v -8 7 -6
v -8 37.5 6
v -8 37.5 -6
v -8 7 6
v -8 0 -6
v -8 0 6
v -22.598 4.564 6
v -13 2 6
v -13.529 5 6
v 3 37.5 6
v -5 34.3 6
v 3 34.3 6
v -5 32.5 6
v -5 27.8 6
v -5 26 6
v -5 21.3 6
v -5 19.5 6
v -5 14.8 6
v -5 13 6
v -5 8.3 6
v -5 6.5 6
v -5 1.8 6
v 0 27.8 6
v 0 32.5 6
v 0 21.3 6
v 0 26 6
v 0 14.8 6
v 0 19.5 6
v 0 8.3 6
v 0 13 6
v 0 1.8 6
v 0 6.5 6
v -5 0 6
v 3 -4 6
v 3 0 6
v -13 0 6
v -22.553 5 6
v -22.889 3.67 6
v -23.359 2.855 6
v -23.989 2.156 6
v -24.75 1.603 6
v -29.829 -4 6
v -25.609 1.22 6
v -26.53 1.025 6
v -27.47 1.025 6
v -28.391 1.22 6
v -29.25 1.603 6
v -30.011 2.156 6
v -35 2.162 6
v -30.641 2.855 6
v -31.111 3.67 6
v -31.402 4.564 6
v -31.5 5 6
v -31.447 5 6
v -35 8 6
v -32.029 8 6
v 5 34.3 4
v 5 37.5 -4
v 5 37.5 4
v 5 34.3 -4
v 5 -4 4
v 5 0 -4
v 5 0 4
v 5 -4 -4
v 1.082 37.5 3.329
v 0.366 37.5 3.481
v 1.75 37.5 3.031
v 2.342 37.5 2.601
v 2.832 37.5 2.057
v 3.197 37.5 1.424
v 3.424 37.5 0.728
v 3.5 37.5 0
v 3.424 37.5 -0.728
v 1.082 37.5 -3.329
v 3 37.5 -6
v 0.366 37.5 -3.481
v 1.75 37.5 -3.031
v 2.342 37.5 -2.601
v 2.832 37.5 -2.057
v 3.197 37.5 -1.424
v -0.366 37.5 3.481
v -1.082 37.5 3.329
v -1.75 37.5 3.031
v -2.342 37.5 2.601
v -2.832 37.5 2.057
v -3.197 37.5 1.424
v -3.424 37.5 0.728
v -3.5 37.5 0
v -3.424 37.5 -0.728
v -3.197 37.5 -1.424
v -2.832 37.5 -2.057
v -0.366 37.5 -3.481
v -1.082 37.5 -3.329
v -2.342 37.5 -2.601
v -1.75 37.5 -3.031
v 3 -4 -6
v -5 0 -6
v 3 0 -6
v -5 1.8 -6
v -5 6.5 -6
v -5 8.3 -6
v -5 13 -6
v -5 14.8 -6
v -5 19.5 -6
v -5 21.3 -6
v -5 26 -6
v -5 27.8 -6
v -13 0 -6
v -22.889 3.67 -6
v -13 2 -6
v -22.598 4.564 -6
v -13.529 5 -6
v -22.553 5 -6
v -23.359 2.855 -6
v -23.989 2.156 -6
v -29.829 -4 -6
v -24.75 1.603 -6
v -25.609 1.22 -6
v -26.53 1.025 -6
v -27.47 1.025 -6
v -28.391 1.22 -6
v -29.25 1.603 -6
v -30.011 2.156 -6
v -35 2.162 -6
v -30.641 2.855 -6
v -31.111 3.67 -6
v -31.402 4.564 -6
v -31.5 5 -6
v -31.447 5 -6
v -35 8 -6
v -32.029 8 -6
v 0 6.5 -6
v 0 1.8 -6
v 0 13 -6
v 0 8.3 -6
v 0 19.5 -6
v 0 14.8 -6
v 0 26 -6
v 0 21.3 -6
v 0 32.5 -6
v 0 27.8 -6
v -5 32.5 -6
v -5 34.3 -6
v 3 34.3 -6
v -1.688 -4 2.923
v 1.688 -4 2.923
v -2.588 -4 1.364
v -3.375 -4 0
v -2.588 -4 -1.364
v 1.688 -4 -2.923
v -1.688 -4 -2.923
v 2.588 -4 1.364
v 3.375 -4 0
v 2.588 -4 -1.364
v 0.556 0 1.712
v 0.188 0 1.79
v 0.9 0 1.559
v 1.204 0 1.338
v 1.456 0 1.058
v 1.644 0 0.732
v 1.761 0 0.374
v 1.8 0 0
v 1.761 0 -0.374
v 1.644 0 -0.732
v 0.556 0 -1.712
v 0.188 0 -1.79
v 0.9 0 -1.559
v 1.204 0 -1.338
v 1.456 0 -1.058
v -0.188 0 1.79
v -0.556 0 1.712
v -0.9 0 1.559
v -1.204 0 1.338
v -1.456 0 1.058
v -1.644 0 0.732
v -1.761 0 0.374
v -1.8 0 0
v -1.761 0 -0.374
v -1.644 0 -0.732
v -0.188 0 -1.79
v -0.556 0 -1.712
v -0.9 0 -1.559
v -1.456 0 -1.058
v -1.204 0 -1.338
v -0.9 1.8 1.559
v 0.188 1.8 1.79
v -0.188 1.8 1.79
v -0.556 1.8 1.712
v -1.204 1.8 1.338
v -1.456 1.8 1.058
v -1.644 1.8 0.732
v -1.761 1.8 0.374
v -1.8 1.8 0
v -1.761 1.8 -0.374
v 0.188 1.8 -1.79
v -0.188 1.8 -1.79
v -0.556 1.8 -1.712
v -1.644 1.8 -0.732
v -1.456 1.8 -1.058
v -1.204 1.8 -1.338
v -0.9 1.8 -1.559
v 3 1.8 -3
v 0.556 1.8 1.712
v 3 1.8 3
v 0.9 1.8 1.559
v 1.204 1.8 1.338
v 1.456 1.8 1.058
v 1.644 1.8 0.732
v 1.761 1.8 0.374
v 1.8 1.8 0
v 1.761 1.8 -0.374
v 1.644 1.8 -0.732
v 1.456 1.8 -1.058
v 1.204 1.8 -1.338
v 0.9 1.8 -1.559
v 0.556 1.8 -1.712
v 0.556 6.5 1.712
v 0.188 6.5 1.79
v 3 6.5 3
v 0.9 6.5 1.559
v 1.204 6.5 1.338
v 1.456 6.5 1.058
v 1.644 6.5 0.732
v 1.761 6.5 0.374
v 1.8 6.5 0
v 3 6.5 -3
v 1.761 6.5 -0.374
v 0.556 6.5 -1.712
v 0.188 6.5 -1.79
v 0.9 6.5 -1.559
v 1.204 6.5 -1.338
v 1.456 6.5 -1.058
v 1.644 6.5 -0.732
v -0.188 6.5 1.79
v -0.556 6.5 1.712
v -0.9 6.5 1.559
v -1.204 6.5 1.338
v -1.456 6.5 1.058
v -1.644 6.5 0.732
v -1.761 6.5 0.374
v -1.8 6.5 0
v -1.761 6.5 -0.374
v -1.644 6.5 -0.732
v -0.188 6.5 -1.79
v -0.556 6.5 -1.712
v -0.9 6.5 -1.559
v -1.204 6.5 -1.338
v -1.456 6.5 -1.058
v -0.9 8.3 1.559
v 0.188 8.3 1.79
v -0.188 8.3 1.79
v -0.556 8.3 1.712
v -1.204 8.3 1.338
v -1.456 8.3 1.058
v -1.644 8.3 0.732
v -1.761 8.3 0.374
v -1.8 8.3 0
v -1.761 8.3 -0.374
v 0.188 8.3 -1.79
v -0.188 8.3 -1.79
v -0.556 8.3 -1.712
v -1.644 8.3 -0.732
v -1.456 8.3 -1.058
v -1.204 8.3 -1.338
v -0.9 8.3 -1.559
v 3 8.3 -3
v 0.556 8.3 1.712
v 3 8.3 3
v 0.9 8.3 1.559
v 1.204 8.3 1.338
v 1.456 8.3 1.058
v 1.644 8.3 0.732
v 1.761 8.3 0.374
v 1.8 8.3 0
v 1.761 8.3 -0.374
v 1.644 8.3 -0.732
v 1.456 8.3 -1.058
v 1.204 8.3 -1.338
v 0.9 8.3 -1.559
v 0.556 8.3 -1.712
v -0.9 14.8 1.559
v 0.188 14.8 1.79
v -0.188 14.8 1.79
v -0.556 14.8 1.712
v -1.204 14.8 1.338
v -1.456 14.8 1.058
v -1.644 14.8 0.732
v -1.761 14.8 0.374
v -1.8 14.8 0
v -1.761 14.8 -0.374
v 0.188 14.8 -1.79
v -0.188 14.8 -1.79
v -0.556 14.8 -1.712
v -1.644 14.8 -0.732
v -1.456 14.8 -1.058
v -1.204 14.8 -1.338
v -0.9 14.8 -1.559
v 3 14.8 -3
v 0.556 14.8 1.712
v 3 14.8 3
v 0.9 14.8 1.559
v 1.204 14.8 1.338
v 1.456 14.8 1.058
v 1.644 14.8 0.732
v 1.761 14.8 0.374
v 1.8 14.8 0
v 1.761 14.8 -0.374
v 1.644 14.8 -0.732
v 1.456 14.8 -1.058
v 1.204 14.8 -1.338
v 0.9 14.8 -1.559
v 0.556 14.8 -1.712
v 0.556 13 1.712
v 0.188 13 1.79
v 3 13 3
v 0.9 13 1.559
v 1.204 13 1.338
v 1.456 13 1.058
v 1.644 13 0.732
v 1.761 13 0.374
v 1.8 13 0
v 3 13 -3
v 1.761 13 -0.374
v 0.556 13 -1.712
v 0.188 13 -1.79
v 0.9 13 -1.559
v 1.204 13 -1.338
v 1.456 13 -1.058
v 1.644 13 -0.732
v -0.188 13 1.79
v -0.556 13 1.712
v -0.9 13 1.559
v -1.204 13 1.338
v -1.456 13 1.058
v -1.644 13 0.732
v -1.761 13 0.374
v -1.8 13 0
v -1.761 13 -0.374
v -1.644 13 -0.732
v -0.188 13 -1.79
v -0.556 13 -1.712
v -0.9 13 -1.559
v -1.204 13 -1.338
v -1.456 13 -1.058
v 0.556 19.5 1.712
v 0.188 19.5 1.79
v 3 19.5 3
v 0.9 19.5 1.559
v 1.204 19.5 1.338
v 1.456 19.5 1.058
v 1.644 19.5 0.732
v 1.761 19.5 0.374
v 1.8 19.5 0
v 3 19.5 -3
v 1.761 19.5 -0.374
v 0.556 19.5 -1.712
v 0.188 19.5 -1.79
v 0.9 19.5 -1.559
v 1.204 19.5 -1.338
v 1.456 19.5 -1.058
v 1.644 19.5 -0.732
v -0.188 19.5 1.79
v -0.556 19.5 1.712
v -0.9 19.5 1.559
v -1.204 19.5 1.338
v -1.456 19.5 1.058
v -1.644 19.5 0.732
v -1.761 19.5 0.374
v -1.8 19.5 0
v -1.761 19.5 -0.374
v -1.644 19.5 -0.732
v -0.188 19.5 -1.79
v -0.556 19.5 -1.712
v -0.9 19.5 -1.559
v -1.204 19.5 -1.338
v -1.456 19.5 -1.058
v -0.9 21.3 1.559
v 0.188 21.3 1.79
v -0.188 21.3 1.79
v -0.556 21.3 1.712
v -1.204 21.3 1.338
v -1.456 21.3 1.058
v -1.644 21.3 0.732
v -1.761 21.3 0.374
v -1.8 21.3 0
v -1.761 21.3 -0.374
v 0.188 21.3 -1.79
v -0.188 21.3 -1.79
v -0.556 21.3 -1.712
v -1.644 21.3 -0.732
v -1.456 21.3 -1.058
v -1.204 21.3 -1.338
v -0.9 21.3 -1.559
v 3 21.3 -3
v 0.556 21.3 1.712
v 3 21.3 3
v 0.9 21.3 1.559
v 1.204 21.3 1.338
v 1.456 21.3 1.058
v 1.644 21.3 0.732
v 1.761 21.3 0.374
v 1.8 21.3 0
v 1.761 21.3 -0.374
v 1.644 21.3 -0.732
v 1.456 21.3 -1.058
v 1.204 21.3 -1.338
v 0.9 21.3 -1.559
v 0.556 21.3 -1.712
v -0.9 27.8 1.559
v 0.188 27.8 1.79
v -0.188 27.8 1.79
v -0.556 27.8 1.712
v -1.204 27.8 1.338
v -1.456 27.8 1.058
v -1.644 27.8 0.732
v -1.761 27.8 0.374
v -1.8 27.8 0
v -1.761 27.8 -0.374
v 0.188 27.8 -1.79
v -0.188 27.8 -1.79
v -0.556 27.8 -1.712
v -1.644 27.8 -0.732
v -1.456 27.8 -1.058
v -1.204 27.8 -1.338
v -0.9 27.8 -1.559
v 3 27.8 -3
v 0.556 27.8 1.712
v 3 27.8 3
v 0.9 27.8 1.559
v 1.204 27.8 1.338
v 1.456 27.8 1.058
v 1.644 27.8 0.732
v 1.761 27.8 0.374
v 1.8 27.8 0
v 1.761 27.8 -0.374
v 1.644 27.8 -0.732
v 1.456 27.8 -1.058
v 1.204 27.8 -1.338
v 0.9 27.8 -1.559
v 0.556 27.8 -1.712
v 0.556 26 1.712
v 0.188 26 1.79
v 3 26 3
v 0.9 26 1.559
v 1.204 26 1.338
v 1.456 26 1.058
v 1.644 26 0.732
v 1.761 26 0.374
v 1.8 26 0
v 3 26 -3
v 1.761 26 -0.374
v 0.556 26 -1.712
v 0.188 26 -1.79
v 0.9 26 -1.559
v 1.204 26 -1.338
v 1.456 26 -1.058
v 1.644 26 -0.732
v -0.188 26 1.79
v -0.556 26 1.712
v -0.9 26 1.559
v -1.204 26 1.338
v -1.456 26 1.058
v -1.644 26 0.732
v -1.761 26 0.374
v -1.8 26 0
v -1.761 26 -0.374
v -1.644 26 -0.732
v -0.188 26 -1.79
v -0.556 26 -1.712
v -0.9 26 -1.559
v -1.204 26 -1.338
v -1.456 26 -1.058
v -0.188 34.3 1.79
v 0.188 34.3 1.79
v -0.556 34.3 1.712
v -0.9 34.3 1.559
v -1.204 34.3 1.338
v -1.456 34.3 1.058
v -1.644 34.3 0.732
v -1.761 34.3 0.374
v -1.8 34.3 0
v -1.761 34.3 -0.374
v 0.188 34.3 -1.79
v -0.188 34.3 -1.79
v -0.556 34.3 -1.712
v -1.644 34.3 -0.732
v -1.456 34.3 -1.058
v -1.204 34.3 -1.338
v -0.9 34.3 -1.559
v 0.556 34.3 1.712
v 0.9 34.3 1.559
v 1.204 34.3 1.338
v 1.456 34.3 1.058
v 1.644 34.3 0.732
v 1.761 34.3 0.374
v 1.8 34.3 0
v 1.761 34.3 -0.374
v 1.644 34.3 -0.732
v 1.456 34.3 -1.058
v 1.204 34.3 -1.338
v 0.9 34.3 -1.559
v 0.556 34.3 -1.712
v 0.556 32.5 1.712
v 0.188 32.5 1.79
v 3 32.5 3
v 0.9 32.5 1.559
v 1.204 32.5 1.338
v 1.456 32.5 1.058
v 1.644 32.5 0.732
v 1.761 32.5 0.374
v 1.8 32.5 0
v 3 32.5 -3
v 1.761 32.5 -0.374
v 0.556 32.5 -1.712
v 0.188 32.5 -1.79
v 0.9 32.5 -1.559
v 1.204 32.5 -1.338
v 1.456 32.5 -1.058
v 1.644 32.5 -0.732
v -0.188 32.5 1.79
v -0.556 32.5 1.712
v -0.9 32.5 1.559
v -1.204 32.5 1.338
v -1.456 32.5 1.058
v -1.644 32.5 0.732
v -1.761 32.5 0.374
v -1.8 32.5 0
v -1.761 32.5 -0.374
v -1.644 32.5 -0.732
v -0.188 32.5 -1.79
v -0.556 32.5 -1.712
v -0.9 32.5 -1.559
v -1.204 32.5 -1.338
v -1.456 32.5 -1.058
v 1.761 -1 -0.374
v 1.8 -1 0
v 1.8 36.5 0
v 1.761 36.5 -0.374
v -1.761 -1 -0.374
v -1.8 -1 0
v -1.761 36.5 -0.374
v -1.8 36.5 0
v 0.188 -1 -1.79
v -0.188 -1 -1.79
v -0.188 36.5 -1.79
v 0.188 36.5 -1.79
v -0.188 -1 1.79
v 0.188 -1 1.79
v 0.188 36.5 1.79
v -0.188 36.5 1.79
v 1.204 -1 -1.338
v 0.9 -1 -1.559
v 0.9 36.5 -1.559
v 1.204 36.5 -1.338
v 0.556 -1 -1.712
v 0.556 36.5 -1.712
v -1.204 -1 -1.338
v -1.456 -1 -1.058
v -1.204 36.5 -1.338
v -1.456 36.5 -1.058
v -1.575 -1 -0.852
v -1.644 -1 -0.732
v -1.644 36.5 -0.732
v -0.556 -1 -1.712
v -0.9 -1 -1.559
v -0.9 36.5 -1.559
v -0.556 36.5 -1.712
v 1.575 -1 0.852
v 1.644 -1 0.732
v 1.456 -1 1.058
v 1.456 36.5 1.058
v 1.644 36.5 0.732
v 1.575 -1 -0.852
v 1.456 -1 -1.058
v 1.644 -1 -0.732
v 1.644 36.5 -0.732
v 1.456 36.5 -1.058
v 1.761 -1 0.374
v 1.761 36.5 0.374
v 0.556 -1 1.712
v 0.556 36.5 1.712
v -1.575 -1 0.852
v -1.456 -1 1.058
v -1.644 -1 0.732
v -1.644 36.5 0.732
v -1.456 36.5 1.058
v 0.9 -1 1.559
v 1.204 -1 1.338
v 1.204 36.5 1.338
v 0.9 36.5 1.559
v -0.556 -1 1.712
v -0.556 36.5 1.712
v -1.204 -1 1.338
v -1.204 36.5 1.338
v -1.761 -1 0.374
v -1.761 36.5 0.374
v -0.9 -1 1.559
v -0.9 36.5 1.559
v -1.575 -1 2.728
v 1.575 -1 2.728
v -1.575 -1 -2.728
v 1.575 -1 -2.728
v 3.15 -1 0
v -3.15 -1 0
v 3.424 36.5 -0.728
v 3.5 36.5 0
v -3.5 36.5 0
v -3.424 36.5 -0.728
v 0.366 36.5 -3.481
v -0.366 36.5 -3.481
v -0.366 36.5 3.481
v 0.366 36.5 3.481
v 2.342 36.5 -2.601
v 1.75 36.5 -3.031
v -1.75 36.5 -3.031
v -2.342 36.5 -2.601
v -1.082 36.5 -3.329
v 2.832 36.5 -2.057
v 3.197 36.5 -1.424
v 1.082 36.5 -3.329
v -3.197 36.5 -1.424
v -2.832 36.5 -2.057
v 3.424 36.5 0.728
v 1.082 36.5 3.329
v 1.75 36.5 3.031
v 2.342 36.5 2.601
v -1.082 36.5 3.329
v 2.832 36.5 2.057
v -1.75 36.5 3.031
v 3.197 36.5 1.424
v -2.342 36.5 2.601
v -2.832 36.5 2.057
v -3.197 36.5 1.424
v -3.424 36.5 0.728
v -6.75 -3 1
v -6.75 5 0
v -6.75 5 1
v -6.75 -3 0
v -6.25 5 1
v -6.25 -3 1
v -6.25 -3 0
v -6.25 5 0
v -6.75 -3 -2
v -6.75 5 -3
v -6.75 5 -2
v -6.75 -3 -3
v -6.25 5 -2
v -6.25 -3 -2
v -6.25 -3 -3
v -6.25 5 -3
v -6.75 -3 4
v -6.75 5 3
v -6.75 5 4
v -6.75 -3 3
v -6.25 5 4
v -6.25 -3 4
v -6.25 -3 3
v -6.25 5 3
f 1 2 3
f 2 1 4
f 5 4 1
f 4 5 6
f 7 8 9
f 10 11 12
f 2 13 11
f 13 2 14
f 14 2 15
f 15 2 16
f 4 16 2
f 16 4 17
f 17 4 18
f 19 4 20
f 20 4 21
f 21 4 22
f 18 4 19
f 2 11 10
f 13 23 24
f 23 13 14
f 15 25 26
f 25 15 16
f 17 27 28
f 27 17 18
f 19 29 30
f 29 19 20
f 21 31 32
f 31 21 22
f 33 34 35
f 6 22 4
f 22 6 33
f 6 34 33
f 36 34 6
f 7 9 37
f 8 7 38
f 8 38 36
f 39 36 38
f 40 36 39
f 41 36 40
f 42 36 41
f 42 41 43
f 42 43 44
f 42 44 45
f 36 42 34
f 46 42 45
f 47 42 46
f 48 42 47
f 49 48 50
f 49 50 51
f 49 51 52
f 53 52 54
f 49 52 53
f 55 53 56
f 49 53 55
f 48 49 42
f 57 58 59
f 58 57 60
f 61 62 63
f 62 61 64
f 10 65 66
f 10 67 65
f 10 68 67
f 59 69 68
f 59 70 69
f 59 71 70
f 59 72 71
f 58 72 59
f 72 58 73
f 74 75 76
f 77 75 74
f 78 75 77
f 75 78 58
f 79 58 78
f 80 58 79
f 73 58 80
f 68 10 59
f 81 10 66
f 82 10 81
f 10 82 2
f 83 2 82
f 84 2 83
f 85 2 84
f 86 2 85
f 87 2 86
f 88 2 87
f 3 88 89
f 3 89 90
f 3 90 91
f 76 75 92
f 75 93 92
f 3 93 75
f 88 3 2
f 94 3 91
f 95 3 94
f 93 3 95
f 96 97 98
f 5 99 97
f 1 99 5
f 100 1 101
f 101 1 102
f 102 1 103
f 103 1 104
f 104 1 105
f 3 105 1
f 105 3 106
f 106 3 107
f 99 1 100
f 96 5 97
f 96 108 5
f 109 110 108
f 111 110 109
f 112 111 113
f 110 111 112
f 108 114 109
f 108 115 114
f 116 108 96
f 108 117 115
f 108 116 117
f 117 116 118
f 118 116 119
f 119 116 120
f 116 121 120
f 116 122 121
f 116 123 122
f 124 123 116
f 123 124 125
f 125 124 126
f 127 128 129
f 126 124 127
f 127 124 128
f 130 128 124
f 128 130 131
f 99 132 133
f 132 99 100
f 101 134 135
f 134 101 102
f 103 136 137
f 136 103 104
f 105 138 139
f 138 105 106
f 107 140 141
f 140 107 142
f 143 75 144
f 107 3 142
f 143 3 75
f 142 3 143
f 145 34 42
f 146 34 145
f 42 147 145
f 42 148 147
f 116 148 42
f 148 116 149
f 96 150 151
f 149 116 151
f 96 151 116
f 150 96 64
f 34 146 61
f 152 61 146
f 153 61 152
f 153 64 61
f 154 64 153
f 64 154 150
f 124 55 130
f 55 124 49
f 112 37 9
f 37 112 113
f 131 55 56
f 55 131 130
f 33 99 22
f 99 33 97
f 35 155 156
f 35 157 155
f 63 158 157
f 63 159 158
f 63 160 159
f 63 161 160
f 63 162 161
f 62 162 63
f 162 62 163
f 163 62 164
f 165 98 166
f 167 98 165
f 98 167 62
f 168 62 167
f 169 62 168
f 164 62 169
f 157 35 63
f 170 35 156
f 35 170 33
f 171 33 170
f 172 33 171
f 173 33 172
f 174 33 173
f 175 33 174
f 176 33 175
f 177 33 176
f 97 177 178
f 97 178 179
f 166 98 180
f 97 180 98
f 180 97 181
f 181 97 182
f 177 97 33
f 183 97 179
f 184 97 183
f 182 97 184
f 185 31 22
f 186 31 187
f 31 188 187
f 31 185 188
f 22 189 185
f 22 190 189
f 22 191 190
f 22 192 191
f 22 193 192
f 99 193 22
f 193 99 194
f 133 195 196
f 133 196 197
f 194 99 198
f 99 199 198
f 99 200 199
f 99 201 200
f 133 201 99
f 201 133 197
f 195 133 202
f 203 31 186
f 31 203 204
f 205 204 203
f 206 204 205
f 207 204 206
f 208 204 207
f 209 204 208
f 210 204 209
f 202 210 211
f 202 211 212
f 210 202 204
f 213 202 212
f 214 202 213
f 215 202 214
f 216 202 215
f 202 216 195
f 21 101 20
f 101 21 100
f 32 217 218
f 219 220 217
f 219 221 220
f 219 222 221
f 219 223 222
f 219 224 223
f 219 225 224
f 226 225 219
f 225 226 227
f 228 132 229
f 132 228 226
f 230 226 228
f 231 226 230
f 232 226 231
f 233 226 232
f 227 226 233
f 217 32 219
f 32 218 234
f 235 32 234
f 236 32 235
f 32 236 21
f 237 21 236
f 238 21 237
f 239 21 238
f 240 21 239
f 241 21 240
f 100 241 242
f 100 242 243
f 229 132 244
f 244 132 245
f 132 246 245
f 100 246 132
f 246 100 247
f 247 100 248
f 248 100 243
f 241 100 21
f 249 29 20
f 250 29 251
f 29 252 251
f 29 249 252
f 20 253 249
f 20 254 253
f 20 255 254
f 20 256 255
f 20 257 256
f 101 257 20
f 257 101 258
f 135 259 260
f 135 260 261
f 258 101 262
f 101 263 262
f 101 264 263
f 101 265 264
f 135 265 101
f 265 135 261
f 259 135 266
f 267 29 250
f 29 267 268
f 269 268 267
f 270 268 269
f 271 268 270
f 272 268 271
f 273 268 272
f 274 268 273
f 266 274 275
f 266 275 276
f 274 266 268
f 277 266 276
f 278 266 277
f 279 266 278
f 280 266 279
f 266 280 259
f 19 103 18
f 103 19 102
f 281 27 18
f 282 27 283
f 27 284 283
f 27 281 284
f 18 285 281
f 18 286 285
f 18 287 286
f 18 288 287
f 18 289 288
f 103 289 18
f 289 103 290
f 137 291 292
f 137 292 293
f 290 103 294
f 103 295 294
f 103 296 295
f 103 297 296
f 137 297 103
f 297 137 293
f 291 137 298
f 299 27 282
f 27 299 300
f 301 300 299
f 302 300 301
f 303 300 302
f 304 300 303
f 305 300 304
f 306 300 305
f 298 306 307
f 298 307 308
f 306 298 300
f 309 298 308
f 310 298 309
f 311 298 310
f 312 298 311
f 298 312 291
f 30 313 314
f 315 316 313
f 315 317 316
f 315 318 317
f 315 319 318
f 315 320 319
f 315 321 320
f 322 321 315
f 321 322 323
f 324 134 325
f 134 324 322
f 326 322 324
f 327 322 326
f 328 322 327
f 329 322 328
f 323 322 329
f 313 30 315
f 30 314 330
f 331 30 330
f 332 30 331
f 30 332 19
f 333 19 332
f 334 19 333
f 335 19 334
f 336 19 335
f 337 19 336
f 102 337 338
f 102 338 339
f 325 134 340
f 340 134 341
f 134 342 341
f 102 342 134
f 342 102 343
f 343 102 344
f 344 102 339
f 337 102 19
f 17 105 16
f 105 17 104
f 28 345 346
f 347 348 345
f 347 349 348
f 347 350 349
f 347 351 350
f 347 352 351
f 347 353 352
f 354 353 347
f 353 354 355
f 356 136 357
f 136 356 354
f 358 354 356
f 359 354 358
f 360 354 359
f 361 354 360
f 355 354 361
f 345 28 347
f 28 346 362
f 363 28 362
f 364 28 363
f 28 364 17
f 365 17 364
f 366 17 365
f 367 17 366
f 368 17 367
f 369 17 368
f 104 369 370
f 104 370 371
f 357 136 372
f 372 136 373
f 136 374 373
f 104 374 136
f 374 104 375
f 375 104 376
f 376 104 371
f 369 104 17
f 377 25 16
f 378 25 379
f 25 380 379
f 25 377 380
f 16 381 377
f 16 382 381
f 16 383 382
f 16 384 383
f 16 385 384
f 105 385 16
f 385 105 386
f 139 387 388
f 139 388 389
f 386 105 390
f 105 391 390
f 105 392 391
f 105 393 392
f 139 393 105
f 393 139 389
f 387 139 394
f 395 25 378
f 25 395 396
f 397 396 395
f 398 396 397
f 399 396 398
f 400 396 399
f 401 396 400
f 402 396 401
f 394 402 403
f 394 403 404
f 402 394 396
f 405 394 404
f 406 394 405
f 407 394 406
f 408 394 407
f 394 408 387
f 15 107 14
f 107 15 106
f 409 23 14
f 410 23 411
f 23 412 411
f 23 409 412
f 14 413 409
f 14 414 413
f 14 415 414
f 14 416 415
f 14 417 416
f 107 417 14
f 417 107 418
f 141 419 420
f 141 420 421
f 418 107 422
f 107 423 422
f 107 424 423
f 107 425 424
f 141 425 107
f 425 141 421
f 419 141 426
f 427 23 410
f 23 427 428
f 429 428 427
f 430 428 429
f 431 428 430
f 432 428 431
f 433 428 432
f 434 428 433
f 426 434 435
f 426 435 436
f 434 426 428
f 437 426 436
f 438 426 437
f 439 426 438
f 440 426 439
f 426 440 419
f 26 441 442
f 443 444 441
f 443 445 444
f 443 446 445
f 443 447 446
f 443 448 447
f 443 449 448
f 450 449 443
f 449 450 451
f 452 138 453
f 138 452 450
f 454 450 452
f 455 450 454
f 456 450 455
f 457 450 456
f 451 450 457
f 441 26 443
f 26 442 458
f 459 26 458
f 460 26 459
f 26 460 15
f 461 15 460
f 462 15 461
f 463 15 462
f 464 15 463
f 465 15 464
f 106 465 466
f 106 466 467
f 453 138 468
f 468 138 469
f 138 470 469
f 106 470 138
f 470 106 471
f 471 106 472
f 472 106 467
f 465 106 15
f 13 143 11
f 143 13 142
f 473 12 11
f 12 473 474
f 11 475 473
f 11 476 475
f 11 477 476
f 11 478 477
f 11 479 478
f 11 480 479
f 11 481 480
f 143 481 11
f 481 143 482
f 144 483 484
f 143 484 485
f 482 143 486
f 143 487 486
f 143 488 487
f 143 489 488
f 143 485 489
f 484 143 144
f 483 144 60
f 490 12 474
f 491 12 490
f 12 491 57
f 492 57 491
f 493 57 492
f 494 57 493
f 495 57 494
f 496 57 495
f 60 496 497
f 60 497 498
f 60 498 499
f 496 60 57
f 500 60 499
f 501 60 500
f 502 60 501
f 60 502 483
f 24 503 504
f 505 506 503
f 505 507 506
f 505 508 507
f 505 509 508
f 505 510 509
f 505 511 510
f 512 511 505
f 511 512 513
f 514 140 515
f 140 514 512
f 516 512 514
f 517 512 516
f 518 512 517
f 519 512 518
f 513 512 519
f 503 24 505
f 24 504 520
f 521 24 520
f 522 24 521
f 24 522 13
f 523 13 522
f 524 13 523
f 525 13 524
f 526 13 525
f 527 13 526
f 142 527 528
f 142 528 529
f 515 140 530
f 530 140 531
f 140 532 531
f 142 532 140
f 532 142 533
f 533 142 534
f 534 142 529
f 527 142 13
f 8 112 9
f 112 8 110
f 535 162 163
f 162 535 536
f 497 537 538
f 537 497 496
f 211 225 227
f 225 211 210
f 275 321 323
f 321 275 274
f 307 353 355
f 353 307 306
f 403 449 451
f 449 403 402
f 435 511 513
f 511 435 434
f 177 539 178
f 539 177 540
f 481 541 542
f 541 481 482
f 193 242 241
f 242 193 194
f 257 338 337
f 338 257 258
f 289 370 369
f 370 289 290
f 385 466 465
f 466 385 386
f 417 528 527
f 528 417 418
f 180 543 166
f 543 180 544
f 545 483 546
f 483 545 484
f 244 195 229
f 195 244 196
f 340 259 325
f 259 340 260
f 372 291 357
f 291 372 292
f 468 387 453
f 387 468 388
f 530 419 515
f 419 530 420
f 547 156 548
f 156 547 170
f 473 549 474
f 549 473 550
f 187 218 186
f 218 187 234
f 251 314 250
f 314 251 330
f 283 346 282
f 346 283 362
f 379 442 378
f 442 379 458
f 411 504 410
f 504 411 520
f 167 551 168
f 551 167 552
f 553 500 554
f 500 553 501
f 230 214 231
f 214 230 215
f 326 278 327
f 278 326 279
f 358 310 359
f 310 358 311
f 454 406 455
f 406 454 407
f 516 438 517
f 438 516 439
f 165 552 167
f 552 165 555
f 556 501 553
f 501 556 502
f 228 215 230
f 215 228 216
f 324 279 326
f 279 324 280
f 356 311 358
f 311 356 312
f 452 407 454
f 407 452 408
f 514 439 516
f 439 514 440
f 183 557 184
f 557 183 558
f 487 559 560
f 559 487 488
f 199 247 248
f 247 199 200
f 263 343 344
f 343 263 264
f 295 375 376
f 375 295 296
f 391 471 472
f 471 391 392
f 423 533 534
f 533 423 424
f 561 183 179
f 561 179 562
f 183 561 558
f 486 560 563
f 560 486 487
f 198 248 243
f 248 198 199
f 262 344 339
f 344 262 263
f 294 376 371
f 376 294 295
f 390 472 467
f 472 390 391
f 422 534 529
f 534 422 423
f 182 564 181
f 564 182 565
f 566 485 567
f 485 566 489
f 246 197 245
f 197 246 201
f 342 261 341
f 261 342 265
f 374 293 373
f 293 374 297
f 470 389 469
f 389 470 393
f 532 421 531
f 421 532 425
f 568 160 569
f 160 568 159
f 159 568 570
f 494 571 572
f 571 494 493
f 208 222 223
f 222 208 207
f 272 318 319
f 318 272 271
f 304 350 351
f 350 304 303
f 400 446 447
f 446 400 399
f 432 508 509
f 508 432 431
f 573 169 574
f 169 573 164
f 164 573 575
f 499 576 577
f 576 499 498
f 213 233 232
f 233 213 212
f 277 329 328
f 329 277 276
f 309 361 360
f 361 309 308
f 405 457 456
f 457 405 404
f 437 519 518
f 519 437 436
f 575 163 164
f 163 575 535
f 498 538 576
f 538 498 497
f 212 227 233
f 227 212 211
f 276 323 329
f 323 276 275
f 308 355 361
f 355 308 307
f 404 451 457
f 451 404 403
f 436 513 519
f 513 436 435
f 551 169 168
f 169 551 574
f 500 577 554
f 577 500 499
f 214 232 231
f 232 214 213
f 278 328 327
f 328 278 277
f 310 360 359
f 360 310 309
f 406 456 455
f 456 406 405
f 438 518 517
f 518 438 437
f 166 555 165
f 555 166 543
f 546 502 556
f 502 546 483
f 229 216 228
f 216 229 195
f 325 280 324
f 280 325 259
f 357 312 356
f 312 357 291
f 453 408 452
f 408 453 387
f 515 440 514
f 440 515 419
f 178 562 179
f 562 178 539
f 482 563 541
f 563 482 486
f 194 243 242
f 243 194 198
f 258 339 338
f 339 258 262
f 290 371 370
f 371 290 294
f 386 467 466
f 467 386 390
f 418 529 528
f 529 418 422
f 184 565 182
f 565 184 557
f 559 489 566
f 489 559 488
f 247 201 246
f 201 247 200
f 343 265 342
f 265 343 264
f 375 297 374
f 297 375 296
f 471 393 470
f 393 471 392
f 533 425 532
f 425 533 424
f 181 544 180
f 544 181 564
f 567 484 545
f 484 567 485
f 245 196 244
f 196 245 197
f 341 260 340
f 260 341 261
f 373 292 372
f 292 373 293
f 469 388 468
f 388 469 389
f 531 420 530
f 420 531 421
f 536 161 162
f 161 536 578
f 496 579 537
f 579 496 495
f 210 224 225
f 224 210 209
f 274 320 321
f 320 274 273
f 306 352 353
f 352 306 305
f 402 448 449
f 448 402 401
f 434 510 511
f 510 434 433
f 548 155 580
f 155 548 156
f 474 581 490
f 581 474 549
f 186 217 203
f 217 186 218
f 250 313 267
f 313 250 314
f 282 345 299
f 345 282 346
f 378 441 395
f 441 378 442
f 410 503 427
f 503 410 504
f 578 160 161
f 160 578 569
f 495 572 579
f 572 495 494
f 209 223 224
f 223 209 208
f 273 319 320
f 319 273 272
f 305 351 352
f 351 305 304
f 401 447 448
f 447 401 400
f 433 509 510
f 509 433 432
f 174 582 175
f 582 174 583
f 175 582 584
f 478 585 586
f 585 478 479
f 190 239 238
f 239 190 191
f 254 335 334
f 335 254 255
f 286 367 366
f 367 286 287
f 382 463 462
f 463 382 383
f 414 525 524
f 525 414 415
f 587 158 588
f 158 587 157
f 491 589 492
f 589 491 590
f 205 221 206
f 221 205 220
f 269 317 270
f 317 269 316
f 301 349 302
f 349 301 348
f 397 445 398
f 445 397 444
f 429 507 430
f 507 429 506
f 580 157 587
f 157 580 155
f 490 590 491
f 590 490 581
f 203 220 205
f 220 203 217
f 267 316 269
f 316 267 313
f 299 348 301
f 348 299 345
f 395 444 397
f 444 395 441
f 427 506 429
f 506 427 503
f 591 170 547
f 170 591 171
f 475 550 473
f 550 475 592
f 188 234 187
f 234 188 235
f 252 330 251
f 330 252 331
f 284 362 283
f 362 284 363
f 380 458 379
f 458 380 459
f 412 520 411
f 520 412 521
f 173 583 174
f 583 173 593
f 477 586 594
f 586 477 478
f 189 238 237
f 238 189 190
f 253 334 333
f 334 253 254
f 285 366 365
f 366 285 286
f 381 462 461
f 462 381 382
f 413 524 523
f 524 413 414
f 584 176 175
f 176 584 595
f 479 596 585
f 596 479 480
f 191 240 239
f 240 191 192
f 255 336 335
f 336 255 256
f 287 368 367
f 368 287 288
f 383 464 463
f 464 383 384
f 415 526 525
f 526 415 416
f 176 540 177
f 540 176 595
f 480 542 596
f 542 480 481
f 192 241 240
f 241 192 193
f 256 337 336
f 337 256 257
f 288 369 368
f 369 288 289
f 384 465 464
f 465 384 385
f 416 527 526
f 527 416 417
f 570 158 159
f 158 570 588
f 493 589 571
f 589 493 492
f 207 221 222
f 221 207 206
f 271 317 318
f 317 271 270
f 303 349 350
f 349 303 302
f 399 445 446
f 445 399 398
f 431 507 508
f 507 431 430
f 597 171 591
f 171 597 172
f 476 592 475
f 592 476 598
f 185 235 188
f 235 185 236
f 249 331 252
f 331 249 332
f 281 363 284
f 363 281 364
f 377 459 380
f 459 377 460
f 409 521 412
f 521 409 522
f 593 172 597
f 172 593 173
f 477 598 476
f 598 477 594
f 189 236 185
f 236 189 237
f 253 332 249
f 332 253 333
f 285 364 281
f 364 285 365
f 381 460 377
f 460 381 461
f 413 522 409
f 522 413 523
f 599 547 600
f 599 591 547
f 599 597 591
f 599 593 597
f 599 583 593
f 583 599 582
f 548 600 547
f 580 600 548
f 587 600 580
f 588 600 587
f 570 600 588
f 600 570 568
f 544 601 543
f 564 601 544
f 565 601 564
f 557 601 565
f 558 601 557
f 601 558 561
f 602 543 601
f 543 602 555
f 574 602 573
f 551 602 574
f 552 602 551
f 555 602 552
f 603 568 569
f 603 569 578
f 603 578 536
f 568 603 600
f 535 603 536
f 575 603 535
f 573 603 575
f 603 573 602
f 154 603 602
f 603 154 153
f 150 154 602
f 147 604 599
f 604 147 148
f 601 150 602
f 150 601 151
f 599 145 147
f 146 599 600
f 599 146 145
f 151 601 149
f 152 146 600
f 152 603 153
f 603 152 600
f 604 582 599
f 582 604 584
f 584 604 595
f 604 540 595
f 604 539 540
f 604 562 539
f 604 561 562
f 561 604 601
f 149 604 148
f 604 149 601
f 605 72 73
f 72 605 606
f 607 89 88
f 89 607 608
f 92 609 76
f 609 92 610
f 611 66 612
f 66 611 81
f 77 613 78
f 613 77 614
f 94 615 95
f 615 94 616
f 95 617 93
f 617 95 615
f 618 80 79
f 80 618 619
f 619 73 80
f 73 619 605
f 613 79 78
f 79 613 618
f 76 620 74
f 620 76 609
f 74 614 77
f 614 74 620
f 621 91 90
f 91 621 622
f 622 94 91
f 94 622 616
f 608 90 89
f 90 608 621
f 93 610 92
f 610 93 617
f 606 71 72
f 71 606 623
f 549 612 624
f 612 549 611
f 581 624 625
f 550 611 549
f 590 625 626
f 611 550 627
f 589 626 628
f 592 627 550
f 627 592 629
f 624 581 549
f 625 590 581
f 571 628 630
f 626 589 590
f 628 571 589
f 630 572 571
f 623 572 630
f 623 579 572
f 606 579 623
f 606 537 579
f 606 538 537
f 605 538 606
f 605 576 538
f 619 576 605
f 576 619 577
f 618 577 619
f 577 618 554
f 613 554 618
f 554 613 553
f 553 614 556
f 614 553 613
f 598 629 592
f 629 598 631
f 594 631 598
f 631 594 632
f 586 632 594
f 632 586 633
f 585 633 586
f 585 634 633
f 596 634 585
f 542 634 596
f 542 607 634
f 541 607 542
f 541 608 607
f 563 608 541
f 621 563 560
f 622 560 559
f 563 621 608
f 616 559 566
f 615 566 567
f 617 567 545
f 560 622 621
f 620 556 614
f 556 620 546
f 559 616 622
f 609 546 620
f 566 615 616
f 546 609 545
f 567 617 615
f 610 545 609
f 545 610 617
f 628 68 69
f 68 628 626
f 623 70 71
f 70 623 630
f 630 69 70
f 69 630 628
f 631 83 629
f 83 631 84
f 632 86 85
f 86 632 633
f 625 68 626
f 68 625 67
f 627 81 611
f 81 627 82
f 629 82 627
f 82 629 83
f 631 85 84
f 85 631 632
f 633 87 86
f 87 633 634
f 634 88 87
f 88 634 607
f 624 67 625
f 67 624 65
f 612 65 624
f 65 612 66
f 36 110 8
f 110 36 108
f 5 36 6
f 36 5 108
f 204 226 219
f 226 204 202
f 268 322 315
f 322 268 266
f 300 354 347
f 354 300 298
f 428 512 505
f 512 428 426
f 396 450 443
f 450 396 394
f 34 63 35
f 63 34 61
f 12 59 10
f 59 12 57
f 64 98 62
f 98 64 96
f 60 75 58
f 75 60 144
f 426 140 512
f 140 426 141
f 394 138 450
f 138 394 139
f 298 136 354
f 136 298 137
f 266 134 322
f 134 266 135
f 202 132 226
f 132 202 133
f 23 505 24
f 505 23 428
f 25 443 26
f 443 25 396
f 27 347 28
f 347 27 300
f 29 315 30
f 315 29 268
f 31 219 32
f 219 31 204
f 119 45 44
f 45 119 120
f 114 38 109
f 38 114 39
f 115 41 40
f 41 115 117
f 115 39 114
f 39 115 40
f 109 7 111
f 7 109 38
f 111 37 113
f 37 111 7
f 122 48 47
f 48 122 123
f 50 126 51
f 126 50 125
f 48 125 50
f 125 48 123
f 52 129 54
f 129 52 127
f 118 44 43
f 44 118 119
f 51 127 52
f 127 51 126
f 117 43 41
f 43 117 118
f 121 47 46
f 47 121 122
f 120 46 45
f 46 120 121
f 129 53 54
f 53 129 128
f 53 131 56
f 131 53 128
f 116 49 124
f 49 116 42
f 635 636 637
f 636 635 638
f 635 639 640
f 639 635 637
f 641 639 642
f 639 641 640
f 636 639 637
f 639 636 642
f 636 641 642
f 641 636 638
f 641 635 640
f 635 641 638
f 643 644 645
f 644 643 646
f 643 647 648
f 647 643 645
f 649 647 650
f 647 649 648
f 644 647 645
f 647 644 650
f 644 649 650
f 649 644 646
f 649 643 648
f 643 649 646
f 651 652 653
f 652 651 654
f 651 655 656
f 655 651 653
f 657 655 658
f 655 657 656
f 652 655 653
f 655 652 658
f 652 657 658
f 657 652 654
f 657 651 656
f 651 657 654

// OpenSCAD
// PRUSA iteration4
// s-buffer-hook-uni
// GNU GPL v3
// Josef Průša <iam@josefprusa.cz> and contributors
// http://www.reprap.org/wiki/Prusa_Mendel
// http://prusamendel.org


module buffer_spacer_hook_uni()
{
    difference()
    {
        union()
        {
            // base block
            translate([-8,-4,-6]) cube([13,41.5,12]);
            
            // hook
            translate([-35,-4,-6]) cube([28,9,12]);
            translate([-35,-4,-6]) cube([8,12,12]);
            translate([-7,-4,-6]) rotate([0,0,45]) cube([8,8,12]);
        }
        
        // hook edges
        translate([-13,2,-7]) rotate([0,0,10]) cube([2,13,14]); 
        

        
        // hold together screw
        translate([0,-3.4,0]) rotate([-90,0,0]) cylinder(r=1.8, h=40, $fn=30);
        translate([0,-7,0]) rotate([-90,0,0]) cylinder(r1=3.6, r2=3.15, h=6, $fn=6);
        translate([0,36.5,0]) rotate([-90,0,0]) cylinder(r=3.5, h=6, $fn=30);
        
        // plates
        for(i = [0 : 5])
        {
            translate([-5,6.5*i,-10]) cube([50,1.8,20]); 
        }
        
        
        // MK3 frame cut
        translate([-13,-0,-6.5]) cube([5,7,13]);
        
        // cut
        translate([3,1,-10]) cube([20,33,20]); 
        
        // edges
        translate([2,-5,7]) rotate([0,45,0]) cube([20,70,20]); 
        translate([2,-5,-7]) rotate([0,45,0]) cube([20,70,20]); 
        translate([-2,1,-8]) rotate([0,45,0]) cube([20,32,20]); 
        translate([-2,1,8]) rotate([0,45,0]) cube([20,32,20]); 
        
        
        translate([-27,5.5,-7]) rotate([0,0,0]) cylinder(r=4.5, h=40, $fn=30);
        translate([-31.5,5,-7]) cube([8,11,15]);
        
        
        // hook edges
        translate([-31.5,5,-7]) rotate([0,0,10]) cube([2,13,14]); 
        translate([-33,-8,-7]) rotate([0,0,40]) cube([5,13,14]); 
        
        // selective infill
        translate([-6.75,-3,0]) cube([0.5,8,1]); 
        translate([-6.75,-3,-3]) cube([0.5,8,1]); 
        translate([-6.75,-3,3]) cube([0.5,8,1]); 
        
    }
}

buffer_spacer_hook_uni();
